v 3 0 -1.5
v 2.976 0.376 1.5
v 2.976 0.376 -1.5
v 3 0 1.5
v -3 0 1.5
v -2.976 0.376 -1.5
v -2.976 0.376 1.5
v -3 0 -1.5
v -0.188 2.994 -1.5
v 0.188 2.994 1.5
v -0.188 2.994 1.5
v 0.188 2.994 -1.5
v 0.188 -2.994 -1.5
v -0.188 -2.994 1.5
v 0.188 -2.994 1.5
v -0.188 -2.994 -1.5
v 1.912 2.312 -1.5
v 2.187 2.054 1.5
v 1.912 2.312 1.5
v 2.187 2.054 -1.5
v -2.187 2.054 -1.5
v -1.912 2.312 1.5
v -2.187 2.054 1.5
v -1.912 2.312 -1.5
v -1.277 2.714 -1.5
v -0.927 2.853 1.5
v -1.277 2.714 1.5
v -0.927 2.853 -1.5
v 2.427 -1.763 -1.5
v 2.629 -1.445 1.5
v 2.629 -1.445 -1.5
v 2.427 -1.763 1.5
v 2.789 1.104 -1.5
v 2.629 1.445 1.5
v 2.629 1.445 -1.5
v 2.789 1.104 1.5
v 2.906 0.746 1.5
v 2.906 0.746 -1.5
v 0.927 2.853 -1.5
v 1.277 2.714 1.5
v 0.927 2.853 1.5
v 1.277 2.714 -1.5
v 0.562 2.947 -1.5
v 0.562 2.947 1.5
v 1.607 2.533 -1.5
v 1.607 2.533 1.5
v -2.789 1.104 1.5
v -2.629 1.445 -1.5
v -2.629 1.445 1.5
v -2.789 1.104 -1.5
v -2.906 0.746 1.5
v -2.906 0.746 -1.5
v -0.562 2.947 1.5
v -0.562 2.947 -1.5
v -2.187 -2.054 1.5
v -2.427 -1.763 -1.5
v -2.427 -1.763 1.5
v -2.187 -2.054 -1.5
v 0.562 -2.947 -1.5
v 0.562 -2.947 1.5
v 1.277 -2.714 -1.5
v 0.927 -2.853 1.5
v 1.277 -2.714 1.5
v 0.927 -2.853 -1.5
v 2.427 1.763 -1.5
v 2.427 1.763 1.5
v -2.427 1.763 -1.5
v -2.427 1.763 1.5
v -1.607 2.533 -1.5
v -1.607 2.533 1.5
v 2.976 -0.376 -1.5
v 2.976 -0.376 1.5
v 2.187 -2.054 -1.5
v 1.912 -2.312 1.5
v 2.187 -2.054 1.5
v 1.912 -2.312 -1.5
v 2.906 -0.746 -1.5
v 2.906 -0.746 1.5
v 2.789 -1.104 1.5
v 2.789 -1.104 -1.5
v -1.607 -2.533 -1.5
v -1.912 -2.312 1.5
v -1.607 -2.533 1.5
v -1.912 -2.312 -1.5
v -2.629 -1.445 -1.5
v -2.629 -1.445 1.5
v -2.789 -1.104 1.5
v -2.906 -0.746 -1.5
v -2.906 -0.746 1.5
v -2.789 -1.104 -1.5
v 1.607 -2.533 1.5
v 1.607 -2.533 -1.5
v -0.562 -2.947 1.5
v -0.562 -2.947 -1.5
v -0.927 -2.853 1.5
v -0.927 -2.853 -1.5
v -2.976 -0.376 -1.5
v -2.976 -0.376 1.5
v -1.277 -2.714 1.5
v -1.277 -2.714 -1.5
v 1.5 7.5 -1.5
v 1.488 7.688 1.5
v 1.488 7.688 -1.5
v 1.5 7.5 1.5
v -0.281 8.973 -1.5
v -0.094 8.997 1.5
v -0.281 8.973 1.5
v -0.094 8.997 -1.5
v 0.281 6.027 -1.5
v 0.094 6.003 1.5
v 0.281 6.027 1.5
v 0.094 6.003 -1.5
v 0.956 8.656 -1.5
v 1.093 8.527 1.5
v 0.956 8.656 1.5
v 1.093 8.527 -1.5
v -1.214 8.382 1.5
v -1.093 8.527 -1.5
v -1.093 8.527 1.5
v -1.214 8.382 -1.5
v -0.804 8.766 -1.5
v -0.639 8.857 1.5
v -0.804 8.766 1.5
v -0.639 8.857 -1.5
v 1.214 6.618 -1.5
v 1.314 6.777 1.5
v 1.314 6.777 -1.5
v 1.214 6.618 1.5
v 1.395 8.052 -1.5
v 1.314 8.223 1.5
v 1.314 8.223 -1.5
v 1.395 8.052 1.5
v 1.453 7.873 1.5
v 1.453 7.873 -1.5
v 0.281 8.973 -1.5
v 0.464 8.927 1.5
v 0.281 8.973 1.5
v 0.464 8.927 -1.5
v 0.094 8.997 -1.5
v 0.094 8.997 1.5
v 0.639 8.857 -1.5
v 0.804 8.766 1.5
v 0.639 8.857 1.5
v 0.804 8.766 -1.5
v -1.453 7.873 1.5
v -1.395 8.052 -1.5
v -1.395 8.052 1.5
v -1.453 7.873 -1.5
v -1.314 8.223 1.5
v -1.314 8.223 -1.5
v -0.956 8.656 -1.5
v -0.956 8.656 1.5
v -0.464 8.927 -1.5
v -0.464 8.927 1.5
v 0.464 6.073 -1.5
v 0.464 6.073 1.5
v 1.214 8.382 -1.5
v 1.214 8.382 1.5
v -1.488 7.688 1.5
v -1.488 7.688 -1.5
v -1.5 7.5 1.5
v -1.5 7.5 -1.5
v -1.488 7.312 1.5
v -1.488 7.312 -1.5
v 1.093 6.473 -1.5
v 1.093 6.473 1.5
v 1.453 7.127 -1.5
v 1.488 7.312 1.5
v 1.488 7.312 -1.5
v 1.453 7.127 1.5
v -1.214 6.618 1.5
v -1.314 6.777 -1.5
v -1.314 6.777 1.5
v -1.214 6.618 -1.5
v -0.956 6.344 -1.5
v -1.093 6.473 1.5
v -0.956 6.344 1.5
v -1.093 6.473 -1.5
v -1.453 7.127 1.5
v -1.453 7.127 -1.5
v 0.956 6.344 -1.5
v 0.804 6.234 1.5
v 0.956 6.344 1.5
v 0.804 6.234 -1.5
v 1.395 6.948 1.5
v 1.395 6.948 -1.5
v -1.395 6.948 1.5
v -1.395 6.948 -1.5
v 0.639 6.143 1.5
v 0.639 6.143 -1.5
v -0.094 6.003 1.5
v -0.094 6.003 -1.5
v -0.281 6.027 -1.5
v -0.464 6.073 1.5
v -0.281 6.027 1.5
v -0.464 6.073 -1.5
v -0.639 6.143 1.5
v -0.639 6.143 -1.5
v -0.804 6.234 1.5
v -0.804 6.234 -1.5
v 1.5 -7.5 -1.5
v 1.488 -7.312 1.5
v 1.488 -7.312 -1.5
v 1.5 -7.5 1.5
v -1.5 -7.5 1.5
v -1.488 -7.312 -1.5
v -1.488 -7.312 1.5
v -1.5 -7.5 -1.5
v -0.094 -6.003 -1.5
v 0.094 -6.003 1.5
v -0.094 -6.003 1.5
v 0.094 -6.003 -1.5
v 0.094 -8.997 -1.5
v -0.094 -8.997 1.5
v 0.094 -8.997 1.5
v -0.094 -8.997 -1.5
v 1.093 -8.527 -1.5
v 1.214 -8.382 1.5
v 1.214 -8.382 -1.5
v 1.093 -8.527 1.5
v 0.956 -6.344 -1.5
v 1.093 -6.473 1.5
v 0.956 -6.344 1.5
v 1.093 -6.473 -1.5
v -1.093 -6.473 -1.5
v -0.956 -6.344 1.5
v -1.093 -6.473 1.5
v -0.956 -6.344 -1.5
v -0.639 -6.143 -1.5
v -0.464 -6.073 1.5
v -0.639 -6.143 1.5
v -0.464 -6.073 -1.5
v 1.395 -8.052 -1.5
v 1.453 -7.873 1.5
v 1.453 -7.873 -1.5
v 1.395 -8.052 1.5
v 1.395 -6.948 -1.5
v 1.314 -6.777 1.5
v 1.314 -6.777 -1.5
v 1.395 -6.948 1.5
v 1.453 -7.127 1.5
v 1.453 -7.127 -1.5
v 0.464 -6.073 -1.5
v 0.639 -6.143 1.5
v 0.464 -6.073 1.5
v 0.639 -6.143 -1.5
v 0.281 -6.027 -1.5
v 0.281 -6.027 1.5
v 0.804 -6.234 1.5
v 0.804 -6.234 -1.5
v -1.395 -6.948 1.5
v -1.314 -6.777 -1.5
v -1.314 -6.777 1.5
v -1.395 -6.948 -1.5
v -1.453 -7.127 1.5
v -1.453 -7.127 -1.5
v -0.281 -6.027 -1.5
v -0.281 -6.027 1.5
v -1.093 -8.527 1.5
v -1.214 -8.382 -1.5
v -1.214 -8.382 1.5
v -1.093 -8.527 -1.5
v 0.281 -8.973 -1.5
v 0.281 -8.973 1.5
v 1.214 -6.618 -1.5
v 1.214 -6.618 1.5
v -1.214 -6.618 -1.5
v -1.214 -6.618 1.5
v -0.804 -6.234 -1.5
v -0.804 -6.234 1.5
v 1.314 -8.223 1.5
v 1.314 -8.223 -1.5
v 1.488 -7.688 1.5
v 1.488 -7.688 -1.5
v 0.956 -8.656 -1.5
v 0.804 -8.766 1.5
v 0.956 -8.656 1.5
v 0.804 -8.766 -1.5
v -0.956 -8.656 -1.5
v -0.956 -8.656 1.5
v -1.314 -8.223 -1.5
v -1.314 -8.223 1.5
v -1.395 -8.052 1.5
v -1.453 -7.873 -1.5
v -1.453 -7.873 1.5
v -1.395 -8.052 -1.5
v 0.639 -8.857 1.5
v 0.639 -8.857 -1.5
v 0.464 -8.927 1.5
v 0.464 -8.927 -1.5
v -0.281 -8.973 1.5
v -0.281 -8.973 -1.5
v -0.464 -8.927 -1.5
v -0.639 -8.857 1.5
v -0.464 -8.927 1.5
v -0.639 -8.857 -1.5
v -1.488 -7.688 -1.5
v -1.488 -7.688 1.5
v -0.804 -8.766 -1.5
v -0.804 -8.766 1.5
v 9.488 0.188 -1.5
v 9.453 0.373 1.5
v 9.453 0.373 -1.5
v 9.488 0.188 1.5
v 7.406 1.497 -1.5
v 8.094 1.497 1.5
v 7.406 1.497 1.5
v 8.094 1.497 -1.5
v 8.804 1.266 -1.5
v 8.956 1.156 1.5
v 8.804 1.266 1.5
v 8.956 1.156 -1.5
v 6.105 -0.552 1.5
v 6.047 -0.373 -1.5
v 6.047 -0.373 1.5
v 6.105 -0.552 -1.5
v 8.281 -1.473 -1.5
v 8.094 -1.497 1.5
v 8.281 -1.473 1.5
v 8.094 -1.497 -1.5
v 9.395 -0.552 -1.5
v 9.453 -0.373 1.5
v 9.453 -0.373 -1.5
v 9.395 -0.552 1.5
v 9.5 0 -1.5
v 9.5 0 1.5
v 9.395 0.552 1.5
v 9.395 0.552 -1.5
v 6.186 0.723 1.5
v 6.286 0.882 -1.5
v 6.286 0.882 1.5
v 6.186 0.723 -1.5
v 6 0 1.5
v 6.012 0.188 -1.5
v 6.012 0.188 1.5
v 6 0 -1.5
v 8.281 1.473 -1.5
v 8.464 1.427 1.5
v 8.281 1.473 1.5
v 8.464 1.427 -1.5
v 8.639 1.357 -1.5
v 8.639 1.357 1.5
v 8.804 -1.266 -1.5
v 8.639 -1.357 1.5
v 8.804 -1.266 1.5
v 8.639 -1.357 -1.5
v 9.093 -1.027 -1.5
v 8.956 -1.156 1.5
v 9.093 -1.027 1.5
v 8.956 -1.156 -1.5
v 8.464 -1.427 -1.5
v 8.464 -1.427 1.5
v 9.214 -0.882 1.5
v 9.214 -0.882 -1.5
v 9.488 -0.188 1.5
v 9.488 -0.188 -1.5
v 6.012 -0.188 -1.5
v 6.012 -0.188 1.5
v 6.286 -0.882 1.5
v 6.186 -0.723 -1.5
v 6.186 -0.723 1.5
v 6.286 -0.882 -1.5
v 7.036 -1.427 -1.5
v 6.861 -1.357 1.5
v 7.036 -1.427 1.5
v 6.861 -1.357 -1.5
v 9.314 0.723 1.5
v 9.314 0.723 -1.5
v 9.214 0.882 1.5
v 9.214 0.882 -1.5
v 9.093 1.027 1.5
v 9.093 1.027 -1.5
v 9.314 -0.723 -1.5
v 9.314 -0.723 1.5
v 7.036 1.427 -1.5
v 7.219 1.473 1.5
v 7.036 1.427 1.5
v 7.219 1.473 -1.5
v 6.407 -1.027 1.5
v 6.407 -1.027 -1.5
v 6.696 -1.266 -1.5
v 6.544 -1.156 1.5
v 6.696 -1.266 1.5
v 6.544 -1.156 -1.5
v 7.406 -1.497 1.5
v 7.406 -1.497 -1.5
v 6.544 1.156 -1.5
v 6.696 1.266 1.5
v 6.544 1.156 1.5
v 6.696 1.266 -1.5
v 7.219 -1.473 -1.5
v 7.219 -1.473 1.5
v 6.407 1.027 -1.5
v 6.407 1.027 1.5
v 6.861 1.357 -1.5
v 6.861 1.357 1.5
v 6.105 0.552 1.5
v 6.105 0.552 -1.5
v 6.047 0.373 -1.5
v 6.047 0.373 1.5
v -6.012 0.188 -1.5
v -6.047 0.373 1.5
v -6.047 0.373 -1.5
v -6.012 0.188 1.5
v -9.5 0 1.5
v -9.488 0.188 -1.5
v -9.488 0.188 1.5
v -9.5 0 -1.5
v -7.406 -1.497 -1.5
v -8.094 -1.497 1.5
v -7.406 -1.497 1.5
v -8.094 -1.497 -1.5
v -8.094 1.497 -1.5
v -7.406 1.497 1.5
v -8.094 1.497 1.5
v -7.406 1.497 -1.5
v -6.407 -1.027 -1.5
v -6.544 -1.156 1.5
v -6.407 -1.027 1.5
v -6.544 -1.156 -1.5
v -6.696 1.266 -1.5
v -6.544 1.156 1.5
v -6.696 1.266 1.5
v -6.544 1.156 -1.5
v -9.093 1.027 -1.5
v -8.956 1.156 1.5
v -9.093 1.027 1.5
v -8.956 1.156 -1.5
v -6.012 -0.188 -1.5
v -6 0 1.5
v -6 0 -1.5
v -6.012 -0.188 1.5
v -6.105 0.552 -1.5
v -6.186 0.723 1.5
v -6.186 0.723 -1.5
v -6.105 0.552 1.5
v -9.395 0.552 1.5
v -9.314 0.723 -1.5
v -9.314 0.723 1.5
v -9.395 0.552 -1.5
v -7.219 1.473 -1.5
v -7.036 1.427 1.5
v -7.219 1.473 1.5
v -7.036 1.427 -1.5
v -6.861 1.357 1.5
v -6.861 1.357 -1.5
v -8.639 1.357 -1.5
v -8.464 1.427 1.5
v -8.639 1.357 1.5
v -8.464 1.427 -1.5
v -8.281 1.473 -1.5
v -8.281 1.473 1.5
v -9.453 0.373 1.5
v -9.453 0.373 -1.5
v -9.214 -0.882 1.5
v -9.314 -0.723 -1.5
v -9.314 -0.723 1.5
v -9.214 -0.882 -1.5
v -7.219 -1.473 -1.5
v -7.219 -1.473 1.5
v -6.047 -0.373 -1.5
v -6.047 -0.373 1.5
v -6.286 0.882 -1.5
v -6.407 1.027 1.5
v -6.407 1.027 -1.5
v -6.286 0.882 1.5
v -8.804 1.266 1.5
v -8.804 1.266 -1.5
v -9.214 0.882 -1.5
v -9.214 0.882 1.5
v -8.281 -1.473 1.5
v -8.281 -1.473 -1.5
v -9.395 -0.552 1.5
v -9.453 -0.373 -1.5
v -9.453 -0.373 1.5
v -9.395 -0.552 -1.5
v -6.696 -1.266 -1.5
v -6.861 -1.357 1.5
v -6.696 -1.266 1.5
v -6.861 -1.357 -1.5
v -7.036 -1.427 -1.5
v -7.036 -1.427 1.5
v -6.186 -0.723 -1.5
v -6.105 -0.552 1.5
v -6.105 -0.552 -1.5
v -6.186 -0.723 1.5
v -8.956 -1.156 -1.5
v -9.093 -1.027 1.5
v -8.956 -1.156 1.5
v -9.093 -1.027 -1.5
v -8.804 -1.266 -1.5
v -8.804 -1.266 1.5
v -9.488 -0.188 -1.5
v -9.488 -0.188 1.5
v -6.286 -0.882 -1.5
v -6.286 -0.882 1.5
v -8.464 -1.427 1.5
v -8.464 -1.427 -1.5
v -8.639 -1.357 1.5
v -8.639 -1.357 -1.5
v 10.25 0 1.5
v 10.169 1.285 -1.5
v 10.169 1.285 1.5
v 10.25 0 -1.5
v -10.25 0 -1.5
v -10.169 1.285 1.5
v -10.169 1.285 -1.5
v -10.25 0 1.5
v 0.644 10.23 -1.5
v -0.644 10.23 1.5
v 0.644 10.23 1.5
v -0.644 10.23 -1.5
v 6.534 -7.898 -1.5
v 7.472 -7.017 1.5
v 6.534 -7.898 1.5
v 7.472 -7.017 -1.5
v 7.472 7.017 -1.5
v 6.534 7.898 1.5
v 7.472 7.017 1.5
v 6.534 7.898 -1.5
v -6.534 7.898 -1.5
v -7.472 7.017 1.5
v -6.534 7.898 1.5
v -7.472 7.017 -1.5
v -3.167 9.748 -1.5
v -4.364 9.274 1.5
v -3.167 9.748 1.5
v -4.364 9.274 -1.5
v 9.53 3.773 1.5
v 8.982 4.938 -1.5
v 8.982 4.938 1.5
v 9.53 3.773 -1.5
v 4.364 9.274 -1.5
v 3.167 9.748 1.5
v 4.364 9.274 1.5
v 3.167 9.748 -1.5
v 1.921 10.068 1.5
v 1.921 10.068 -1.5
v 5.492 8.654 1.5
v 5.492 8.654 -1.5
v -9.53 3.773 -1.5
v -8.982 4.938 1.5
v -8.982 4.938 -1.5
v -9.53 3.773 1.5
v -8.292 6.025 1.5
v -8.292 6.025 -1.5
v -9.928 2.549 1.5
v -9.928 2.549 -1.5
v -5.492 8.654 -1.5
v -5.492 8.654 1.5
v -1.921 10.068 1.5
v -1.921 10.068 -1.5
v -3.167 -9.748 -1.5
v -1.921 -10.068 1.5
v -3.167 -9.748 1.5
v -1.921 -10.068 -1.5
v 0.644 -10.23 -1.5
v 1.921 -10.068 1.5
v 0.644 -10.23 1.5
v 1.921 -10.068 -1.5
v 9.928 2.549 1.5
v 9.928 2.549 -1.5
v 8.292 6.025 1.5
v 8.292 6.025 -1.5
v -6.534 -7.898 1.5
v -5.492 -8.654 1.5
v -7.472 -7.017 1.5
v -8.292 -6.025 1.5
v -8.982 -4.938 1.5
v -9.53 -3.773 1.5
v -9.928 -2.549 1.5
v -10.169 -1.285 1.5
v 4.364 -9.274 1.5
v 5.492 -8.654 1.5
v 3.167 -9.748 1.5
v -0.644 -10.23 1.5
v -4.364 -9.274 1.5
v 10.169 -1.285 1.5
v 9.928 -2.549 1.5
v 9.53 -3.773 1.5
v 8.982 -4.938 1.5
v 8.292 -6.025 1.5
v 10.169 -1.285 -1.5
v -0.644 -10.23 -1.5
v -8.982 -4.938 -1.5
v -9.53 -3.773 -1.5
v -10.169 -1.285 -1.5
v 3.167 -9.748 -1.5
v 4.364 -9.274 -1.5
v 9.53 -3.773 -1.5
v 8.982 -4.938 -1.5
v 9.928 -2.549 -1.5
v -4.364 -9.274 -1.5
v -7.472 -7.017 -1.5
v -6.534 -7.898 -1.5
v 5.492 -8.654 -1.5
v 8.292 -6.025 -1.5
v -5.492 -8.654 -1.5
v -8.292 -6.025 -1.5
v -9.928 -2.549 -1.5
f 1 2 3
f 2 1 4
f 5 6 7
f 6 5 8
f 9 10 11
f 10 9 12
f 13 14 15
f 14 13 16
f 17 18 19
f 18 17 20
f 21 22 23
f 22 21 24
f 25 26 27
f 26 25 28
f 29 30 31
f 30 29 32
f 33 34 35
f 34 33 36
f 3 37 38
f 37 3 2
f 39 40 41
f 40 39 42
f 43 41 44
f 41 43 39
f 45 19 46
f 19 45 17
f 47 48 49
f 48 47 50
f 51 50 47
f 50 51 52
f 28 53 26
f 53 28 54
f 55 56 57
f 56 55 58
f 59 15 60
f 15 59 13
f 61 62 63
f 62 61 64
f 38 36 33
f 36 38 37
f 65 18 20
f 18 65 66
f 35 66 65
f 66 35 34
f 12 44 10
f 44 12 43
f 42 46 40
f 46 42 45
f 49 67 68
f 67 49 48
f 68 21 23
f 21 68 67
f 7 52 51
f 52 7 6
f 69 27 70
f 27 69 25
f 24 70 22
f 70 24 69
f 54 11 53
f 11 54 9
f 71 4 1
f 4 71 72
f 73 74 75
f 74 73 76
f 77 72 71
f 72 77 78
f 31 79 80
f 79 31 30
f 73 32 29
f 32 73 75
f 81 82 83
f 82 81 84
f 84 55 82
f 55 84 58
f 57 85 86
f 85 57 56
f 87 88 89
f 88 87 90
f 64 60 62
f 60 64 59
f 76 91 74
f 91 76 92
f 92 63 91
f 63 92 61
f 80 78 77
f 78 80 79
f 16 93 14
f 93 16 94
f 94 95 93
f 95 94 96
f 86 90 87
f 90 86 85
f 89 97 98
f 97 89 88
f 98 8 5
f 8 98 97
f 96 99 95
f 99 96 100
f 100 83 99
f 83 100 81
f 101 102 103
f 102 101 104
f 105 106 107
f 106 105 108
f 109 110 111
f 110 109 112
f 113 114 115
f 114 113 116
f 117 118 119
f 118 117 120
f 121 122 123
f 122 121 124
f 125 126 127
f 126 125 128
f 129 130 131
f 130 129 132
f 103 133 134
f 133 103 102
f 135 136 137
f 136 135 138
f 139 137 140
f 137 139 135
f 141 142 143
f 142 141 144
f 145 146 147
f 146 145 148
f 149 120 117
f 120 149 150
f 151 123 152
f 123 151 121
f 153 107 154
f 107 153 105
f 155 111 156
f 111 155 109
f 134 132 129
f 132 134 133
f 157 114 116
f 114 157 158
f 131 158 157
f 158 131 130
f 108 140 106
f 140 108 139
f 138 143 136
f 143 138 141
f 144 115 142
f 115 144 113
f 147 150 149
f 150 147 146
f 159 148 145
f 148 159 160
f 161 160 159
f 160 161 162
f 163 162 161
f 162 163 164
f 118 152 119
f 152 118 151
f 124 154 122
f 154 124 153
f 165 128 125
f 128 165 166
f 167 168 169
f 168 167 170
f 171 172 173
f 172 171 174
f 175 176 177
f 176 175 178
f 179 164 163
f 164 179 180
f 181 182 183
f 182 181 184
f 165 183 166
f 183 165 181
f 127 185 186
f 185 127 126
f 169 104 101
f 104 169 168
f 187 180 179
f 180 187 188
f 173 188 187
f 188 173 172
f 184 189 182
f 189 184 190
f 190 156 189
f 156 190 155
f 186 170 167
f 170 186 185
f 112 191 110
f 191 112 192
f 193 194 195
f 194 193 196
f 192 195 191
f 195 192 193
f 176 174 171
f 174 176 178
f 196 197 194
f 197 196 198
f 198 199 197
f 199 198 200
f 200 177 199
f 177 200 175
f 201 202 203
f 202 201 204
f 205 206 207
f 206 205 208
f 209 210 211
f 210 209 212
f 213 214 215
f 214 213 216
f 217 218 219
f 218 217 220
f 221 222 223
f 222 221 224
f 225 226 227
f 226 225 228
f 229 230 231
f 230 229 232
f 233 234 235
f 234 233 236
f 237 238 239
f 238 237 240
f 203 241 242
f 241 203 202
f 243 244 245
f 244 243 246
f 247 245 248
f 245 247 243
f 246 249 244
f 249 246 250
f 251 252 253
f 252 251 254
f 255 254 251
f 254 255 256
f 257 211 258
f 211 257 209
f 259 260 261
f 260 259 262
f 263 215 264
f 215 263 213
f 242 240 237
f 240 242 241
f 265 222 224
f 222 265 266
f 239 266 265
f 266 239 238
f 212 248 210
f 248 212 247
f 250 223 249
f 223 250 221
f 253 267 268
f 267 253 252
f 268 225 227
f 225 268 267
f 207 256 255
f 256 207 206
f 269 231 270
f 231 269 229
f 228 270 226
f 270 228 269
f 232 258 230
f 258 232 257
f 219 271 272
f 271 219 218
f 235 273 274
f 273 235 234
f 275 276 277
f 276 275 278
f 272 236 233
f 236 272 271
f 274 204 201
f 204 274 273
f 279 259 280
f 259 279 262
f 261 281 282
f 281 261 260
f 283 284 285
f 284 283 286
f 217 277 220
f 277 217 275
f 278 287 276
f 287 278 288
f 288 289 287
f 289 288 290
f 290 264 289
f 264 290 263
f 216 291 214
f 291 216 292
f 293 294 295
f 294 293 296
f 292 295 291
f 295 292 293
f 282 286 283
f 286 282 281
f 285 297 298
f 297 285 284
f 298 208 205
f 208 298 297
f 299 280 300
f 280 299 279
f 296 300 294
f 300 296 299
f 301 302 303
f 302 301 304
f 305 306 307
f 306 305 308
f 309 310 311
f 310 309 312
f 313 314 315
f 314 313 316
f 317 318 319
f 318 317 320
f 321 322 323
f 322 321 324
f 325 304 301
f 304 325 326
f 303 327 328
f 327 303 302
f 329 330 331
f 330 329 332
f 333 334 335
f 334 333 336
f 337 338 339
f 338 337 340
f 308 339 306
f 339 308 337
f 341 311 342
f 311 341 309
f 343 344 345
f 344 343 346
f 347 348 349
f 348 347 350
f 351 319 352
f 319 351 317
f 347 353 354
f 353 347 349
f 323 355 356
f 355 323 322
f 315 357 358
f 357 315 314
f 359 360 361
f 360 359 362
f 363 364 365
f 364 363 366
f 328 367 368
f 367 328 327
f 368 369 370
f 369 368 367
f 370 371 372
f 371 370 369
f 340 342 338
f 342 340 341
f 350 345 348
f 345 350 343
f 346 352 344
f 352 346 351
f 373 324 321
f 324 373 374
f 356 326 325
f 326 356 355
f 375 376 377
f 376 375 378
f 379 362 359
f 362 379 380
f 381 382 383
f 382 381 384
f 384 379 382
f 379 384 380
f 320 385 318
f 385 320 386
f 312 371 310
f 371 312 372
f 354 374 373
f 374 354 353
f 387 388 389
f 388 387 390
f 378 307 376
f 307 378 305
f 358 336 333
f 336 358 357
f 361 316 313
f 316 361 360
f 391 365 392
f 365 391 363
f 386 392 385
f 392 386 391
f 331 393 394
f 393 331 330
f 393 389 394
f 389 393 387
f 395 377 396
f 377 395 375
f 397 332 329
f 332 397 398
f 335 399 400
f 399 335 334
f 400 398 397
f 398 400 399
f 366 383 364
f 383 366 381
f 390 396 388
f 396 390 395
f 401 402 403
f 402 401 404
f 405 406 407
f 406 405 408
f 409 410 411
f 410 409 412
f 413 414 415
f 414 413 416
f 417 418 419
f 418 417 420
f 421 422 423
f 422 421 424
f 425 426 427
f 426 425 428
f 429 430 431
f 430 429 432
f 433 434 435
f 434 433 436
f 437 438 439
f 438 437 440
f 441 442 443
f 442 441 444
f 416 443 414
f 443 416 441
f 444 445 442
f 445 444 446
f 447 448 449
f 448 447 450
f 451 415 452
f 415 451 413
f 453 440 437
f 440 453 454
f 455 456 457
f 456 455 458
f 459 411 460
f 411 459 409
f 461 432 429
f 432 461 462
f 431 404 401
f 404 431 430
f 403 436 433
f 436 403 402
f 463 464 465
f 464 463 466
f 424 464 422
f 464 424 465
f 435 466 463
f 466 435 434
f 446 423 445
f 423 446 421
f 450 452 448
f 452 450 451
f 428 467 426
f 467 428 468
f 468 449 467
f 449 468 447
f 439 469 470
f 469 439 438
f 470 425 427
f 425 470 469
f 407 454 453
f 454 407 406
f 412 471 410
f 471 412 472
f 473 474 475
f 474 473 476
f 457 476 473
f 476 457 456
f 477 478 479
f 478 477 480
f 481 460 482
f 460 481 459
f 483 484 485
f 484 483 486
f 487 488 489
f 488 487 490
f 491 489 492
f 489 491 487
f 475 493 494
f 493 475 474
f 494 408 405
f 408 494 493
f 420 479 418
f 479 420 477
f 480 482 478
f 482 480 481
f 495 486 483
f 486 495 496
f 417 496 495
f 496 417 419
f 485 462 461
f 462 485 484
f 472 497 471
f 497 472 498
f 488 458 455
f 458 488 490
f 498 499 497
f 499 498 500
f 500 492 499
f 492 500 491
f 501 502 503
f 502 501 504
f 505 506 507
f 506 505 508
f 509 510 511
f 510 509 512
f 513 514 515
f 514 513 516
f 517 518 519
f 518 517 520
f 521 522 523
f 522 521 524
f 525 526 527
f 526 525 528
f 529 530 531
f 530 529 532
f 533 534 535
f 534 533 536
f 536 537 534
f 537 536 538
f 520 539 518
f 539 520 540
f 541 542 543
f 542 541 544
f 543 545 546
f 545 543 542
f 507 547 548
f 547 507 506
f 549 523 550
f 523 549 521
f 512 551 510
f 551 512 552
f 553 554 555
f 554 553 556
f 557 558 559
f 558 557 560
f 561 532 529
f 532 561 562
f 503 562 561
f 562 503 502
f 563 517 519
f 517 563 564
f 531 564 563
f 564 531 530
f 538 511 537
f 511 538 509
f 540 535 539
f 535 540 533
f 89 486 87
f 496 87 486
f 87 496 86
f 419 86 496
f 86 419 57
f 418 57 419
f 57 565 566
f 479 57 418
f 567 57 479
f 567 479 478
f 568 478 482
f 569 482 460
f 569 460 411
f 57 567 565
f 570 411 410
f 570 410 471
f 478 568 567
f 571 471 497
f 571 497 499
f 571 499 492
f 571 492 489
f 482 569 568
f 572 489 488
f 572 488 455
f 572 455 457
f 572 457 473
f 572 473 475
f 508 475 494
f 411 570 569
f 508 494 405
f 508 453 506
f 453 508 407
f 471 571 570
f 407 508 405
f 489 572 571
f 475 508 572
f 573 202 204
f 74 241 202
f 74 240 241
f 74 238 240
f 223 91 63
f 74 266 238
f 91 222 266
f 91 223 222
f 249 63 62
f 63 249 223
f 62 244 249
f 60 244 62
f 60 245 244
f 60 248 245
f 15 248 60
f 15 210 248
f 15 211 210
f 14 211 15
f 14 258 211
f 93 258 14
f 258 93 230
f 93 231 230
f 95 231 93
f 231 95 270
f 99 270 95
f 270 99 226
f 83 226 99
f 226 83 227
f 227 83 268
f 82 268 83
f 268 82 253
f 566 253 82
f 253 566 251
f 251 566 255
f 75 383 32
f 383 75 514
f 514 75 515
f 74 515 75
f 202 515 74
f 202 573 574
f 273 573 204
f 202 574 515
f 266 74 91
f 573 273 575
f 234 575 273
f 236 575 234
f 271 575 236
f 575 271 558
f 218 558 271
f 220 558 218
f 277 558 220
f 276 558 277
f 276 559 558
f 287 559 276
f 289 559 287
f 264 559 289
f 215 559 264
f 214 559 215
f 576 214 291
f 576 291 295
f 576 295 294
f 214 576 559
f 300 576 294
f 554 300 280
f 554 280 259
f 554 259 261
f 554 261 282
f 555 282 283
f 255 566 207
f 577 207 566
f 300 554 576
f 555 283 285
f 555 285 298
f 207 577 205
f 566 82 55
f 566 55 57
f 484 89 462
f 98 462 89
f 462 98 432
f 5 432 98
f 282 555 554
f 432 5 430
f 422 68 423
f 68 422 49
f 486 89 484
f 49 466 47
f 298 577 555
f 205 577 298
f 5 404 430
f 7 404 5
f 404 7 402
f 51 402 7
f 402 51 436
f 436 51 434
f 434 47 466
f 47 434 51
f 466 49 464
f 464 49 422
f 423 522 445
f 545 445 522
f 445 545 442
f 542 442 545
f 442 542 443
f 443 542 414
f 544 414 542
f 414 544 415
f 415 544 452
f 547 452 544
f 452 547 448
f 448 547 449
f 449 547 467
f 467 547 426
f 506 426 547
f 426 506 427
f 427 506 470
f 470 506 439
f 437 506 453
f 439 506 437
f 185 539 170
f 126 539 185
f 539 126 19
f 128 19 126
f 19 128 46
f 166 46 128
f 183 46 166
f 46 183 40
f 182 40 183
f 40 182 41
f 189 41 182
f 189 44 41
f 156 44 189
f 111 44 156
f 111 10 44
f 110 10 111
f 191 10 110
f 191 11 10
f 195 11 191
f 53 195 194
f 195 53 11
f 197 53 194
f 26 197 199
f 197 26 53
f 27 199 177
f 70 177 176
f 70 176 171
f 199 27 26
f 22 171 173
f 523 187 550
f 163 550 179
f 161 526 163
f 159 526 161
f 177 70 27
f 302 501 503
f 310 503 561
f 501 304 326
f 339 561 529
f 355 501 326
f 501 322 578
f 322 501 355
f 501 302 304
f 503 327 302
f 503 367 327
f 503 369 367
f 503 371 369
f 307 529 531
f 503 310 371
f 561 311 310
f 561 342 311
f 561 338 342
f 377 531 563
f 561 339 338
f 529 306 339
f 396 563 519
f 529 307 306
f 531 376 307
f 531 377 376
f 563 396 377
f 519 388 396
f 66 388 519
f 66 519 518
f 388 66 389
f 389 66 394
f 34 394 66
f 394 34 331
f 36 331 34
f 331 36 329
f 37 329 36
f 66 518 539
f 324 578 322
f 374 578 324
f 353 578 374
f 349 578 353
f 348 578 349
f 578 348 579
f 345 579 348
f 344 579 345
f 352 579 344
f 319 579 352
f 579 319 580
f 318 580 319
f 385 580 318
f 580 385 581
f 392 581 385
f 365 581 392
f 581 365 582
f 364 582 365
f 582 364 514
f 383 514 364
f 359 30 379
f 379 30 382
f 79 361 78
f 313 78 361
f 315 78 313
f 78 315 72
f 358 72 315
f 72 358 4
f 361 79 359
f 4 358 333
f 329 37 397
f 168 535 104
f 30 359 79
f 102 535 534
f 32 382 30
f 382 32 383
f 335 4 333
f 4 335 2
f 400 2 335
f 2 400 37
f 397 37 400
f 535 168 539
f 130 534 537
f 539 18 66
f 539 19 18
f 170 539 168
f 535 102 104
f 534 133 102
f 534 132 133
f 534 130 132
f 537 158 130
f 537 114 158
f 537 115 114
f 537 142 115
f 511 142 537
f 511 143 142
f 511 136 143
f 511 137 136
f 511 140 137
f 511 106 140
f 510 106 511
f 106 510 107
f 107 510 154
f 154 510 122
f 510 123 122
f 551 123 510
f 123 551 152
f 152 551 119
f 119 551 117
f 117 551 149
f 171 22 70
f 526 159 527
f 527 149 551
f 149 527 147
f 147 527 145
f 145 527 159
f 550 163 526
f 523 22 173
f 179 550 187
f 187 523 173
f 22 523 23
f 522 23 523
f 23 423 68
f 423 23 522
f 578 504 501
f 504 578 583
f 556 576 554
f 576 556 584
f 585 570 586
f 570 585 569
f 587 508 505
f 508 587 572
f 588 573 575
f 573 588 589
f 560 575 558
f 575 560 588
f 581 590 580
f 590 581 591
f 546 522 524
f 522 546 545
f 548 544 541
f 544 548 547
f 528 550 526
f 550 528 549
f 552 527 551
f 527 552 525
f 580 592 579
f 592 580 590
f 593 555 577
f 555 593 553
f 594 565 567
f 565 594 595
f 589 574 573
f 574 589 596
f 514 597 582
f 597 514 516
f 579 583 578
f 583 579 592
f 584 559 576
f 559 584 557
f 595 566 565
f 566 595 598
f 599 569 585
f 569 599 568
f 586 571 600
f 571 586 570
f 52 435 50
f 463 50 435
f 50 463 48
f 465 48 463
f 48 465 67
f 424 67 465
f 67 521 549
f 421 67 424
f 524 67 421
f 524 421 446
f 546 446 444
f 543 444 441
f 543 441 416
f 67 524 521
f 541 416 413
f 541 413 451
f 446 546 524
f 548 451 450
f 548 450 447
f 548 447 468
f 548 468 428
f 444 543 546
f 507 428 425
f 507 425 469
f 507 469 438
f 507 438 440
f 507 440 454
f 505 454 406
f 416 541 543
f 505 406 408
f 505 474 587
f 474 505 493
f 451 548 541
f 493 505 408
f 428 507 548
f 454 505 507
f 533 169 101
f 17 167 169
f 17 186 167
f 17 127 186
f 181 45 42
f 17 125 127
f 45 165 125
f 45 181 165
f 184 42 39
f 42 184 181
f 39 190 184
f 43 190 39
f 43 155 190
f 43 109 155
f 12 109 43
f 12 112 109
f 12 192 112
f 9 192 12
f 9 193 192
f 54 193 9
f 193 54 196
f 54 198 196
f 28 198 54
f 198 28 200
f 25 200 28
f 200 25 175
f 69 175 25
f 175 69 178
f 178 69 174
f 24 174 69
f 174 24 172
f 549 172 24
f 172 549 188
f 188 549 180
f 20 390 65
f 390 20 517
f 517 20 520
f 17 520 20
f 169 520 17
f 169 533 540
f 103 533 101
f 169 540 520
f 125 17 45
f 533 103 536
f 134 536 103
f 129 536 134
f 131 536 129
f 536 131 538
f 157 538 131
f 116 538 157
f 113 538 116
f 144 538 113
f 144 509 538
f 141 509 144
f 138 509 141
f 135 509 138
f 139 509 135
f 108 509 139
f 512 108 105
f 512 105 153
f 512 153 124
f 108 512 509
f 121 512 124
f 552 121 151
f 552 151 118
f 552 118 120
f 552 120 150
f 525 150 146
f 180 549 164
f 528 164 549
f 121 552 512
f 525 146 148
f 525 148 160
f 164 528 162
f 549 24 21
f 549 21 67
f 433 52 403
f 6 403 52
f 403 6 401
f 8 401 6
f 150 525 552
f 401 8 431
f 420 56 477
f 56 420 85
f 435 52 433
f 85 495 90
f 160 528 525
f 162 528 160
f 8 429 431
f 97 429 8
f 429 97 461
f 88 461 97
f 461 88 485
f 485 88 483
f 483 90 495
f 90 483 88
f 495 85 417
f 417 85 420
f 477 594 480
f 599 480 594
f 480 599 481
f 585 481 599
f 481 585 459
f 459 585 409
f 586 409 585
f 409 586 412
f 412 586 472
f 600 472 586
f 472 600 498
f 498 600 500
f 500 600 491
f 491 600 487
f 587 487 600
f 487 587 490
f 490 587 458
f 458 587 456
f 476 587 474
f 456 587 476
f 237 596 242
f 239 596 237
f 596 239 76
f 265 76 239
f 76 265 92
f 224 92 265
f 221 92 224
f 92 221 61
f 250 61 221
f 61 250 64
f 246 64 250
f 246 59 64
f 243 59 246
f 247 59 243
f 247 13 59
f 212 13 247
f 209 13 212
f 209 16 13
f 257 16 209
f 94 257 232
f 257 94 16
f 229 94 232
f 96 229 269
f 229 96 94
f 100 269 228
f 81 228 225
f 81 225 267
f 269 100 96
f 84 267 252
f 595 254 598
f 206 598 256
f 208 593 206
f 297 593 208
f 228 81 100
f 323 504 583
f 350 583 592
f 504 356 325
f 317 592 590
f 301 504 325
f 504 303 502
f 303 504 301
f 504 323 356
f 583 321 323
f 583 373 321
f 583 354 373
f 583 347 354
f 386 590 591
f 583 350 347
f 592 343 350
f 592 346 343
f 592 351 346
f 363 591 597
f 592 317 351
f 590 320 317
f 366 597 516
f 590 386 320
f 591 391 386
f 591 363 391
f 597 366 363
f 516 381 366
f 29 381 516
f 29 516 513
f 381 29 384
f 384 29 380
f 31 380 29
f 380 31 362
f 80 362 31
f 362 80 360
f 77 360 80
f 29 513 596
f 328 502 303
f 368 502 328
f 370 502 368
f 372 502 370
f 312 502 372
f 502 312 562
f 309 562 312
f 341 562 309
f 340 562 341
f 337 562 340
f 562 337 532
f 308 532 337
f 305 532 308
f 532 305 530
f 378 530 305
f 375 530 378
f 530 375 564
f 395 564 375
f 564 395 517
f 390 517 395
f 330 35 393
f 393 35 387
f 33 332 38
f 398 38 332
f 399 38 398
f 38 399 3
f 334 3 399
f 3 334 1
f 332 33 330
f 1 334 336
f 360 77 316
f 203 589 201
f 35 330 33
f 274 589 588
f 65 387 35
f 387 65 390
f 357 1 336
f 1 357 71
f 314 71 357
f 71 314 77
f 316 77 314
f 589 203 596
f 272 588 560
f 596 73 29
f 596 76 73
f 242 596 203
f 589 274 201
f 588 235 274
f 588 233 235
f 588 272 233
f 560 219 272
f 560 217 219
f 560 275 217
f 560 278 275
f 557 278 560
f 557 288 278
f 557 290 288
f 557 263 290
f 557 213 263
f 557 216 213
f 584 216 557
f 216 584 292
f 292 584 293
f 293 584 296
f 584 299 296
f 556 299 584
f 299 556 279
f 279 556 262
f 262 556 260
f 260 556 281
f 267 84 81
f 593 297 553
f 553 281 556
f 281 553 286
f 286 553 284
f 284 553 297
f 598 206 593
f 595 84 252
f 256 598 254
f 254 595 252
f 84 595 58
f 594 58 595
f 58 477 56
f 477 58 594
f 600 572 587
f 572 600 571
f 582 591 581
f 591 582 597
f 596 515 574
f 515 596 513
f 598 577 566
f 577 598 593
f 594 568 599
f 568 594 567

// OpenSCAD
$fn = 50;


difference() {
	union() {
		translate(v = [0, 0, -1.5000000000]) {
			rotate(a = [0, 0, 0]) {
				cylinder(h = 3, r = 10.2500000000);
			}
		}
	}
	union() {
		translate(v = [0.0000000000, 0.0000000000, -125.0000000000]) {
			rotate(a = [0, 0, 0]) {
				cylinder(h = 250, r = 3.0000000000);
			}
		}
		translate(v = [0, 0, -125.0000000000]) {
			rotate(a = [0, 0, 0]) {
				cylinder(h = 250, r = 3.0000000000);
			}
		}
		translate(v = [0, 7.5000000000, -125.0000000000]) {
			rotate(a = [0, 0, 0]) {
				cylinder(h = 250, r = 1.5000000000);
			}
		}
		translate(v = [0, -7.5000000000, -125.0000000000]) {
			rotate(a = [0, 0, 0]) {
				cylinder(h = 250, r = 1.5000000000);
			}
		}
		translate(v = [7.7500000000, 0, -125.0000000000]) {
			rotate(a = [0, 0, 0]) {
				hull() {
					translate(v = [0.2500000000, 0, 0]) {
						rotate(a = [0, 0, 0]) {
							translate(v = [0, 0, 0]) {
								rotate(a = [0, 0, 0]) {
									cylinder(h = 250, r = 1.5000000000);
								}
							}
						}
					}
					translate(v = [-0.2500000000, 0, 0]) {
						rotate(a = [0, 0, 0]) {
							translate(v = [0, 0, 0]) {
								rotate(a = [0, 0, 0]) {
									cylinder(h = 250, r = 1.5000000000);
								}
							}
						}
					}
				}
			}
		}
		translate(v = [-7.7500000000, 0, -125.0000000000]) {
			rotate(a = [0, 0, 0]) {
				hull() {
					translate(v = [0.2500000000, 0, 0]) {
						rotate(a = [0, 0, 0]) {
							translate(v = [0, 0, 0]) {
								rotate(a = [0, 0, 0]) {
									cylinder(h = 250, r = 1.5000000000);
								}
							}
						}
					}
					translate(v = [-0.2500000000, 0, 0]) {
						rotate(a = [0, 0, 0]) {
							translate(v = [0, 0, 0]) {
								rotate(a = [0, 0, 0]) {
									cylinder(h = 250, r = 1.5000000000);
								}
							}
						}
					}
				}
			}
		}
	}
}
